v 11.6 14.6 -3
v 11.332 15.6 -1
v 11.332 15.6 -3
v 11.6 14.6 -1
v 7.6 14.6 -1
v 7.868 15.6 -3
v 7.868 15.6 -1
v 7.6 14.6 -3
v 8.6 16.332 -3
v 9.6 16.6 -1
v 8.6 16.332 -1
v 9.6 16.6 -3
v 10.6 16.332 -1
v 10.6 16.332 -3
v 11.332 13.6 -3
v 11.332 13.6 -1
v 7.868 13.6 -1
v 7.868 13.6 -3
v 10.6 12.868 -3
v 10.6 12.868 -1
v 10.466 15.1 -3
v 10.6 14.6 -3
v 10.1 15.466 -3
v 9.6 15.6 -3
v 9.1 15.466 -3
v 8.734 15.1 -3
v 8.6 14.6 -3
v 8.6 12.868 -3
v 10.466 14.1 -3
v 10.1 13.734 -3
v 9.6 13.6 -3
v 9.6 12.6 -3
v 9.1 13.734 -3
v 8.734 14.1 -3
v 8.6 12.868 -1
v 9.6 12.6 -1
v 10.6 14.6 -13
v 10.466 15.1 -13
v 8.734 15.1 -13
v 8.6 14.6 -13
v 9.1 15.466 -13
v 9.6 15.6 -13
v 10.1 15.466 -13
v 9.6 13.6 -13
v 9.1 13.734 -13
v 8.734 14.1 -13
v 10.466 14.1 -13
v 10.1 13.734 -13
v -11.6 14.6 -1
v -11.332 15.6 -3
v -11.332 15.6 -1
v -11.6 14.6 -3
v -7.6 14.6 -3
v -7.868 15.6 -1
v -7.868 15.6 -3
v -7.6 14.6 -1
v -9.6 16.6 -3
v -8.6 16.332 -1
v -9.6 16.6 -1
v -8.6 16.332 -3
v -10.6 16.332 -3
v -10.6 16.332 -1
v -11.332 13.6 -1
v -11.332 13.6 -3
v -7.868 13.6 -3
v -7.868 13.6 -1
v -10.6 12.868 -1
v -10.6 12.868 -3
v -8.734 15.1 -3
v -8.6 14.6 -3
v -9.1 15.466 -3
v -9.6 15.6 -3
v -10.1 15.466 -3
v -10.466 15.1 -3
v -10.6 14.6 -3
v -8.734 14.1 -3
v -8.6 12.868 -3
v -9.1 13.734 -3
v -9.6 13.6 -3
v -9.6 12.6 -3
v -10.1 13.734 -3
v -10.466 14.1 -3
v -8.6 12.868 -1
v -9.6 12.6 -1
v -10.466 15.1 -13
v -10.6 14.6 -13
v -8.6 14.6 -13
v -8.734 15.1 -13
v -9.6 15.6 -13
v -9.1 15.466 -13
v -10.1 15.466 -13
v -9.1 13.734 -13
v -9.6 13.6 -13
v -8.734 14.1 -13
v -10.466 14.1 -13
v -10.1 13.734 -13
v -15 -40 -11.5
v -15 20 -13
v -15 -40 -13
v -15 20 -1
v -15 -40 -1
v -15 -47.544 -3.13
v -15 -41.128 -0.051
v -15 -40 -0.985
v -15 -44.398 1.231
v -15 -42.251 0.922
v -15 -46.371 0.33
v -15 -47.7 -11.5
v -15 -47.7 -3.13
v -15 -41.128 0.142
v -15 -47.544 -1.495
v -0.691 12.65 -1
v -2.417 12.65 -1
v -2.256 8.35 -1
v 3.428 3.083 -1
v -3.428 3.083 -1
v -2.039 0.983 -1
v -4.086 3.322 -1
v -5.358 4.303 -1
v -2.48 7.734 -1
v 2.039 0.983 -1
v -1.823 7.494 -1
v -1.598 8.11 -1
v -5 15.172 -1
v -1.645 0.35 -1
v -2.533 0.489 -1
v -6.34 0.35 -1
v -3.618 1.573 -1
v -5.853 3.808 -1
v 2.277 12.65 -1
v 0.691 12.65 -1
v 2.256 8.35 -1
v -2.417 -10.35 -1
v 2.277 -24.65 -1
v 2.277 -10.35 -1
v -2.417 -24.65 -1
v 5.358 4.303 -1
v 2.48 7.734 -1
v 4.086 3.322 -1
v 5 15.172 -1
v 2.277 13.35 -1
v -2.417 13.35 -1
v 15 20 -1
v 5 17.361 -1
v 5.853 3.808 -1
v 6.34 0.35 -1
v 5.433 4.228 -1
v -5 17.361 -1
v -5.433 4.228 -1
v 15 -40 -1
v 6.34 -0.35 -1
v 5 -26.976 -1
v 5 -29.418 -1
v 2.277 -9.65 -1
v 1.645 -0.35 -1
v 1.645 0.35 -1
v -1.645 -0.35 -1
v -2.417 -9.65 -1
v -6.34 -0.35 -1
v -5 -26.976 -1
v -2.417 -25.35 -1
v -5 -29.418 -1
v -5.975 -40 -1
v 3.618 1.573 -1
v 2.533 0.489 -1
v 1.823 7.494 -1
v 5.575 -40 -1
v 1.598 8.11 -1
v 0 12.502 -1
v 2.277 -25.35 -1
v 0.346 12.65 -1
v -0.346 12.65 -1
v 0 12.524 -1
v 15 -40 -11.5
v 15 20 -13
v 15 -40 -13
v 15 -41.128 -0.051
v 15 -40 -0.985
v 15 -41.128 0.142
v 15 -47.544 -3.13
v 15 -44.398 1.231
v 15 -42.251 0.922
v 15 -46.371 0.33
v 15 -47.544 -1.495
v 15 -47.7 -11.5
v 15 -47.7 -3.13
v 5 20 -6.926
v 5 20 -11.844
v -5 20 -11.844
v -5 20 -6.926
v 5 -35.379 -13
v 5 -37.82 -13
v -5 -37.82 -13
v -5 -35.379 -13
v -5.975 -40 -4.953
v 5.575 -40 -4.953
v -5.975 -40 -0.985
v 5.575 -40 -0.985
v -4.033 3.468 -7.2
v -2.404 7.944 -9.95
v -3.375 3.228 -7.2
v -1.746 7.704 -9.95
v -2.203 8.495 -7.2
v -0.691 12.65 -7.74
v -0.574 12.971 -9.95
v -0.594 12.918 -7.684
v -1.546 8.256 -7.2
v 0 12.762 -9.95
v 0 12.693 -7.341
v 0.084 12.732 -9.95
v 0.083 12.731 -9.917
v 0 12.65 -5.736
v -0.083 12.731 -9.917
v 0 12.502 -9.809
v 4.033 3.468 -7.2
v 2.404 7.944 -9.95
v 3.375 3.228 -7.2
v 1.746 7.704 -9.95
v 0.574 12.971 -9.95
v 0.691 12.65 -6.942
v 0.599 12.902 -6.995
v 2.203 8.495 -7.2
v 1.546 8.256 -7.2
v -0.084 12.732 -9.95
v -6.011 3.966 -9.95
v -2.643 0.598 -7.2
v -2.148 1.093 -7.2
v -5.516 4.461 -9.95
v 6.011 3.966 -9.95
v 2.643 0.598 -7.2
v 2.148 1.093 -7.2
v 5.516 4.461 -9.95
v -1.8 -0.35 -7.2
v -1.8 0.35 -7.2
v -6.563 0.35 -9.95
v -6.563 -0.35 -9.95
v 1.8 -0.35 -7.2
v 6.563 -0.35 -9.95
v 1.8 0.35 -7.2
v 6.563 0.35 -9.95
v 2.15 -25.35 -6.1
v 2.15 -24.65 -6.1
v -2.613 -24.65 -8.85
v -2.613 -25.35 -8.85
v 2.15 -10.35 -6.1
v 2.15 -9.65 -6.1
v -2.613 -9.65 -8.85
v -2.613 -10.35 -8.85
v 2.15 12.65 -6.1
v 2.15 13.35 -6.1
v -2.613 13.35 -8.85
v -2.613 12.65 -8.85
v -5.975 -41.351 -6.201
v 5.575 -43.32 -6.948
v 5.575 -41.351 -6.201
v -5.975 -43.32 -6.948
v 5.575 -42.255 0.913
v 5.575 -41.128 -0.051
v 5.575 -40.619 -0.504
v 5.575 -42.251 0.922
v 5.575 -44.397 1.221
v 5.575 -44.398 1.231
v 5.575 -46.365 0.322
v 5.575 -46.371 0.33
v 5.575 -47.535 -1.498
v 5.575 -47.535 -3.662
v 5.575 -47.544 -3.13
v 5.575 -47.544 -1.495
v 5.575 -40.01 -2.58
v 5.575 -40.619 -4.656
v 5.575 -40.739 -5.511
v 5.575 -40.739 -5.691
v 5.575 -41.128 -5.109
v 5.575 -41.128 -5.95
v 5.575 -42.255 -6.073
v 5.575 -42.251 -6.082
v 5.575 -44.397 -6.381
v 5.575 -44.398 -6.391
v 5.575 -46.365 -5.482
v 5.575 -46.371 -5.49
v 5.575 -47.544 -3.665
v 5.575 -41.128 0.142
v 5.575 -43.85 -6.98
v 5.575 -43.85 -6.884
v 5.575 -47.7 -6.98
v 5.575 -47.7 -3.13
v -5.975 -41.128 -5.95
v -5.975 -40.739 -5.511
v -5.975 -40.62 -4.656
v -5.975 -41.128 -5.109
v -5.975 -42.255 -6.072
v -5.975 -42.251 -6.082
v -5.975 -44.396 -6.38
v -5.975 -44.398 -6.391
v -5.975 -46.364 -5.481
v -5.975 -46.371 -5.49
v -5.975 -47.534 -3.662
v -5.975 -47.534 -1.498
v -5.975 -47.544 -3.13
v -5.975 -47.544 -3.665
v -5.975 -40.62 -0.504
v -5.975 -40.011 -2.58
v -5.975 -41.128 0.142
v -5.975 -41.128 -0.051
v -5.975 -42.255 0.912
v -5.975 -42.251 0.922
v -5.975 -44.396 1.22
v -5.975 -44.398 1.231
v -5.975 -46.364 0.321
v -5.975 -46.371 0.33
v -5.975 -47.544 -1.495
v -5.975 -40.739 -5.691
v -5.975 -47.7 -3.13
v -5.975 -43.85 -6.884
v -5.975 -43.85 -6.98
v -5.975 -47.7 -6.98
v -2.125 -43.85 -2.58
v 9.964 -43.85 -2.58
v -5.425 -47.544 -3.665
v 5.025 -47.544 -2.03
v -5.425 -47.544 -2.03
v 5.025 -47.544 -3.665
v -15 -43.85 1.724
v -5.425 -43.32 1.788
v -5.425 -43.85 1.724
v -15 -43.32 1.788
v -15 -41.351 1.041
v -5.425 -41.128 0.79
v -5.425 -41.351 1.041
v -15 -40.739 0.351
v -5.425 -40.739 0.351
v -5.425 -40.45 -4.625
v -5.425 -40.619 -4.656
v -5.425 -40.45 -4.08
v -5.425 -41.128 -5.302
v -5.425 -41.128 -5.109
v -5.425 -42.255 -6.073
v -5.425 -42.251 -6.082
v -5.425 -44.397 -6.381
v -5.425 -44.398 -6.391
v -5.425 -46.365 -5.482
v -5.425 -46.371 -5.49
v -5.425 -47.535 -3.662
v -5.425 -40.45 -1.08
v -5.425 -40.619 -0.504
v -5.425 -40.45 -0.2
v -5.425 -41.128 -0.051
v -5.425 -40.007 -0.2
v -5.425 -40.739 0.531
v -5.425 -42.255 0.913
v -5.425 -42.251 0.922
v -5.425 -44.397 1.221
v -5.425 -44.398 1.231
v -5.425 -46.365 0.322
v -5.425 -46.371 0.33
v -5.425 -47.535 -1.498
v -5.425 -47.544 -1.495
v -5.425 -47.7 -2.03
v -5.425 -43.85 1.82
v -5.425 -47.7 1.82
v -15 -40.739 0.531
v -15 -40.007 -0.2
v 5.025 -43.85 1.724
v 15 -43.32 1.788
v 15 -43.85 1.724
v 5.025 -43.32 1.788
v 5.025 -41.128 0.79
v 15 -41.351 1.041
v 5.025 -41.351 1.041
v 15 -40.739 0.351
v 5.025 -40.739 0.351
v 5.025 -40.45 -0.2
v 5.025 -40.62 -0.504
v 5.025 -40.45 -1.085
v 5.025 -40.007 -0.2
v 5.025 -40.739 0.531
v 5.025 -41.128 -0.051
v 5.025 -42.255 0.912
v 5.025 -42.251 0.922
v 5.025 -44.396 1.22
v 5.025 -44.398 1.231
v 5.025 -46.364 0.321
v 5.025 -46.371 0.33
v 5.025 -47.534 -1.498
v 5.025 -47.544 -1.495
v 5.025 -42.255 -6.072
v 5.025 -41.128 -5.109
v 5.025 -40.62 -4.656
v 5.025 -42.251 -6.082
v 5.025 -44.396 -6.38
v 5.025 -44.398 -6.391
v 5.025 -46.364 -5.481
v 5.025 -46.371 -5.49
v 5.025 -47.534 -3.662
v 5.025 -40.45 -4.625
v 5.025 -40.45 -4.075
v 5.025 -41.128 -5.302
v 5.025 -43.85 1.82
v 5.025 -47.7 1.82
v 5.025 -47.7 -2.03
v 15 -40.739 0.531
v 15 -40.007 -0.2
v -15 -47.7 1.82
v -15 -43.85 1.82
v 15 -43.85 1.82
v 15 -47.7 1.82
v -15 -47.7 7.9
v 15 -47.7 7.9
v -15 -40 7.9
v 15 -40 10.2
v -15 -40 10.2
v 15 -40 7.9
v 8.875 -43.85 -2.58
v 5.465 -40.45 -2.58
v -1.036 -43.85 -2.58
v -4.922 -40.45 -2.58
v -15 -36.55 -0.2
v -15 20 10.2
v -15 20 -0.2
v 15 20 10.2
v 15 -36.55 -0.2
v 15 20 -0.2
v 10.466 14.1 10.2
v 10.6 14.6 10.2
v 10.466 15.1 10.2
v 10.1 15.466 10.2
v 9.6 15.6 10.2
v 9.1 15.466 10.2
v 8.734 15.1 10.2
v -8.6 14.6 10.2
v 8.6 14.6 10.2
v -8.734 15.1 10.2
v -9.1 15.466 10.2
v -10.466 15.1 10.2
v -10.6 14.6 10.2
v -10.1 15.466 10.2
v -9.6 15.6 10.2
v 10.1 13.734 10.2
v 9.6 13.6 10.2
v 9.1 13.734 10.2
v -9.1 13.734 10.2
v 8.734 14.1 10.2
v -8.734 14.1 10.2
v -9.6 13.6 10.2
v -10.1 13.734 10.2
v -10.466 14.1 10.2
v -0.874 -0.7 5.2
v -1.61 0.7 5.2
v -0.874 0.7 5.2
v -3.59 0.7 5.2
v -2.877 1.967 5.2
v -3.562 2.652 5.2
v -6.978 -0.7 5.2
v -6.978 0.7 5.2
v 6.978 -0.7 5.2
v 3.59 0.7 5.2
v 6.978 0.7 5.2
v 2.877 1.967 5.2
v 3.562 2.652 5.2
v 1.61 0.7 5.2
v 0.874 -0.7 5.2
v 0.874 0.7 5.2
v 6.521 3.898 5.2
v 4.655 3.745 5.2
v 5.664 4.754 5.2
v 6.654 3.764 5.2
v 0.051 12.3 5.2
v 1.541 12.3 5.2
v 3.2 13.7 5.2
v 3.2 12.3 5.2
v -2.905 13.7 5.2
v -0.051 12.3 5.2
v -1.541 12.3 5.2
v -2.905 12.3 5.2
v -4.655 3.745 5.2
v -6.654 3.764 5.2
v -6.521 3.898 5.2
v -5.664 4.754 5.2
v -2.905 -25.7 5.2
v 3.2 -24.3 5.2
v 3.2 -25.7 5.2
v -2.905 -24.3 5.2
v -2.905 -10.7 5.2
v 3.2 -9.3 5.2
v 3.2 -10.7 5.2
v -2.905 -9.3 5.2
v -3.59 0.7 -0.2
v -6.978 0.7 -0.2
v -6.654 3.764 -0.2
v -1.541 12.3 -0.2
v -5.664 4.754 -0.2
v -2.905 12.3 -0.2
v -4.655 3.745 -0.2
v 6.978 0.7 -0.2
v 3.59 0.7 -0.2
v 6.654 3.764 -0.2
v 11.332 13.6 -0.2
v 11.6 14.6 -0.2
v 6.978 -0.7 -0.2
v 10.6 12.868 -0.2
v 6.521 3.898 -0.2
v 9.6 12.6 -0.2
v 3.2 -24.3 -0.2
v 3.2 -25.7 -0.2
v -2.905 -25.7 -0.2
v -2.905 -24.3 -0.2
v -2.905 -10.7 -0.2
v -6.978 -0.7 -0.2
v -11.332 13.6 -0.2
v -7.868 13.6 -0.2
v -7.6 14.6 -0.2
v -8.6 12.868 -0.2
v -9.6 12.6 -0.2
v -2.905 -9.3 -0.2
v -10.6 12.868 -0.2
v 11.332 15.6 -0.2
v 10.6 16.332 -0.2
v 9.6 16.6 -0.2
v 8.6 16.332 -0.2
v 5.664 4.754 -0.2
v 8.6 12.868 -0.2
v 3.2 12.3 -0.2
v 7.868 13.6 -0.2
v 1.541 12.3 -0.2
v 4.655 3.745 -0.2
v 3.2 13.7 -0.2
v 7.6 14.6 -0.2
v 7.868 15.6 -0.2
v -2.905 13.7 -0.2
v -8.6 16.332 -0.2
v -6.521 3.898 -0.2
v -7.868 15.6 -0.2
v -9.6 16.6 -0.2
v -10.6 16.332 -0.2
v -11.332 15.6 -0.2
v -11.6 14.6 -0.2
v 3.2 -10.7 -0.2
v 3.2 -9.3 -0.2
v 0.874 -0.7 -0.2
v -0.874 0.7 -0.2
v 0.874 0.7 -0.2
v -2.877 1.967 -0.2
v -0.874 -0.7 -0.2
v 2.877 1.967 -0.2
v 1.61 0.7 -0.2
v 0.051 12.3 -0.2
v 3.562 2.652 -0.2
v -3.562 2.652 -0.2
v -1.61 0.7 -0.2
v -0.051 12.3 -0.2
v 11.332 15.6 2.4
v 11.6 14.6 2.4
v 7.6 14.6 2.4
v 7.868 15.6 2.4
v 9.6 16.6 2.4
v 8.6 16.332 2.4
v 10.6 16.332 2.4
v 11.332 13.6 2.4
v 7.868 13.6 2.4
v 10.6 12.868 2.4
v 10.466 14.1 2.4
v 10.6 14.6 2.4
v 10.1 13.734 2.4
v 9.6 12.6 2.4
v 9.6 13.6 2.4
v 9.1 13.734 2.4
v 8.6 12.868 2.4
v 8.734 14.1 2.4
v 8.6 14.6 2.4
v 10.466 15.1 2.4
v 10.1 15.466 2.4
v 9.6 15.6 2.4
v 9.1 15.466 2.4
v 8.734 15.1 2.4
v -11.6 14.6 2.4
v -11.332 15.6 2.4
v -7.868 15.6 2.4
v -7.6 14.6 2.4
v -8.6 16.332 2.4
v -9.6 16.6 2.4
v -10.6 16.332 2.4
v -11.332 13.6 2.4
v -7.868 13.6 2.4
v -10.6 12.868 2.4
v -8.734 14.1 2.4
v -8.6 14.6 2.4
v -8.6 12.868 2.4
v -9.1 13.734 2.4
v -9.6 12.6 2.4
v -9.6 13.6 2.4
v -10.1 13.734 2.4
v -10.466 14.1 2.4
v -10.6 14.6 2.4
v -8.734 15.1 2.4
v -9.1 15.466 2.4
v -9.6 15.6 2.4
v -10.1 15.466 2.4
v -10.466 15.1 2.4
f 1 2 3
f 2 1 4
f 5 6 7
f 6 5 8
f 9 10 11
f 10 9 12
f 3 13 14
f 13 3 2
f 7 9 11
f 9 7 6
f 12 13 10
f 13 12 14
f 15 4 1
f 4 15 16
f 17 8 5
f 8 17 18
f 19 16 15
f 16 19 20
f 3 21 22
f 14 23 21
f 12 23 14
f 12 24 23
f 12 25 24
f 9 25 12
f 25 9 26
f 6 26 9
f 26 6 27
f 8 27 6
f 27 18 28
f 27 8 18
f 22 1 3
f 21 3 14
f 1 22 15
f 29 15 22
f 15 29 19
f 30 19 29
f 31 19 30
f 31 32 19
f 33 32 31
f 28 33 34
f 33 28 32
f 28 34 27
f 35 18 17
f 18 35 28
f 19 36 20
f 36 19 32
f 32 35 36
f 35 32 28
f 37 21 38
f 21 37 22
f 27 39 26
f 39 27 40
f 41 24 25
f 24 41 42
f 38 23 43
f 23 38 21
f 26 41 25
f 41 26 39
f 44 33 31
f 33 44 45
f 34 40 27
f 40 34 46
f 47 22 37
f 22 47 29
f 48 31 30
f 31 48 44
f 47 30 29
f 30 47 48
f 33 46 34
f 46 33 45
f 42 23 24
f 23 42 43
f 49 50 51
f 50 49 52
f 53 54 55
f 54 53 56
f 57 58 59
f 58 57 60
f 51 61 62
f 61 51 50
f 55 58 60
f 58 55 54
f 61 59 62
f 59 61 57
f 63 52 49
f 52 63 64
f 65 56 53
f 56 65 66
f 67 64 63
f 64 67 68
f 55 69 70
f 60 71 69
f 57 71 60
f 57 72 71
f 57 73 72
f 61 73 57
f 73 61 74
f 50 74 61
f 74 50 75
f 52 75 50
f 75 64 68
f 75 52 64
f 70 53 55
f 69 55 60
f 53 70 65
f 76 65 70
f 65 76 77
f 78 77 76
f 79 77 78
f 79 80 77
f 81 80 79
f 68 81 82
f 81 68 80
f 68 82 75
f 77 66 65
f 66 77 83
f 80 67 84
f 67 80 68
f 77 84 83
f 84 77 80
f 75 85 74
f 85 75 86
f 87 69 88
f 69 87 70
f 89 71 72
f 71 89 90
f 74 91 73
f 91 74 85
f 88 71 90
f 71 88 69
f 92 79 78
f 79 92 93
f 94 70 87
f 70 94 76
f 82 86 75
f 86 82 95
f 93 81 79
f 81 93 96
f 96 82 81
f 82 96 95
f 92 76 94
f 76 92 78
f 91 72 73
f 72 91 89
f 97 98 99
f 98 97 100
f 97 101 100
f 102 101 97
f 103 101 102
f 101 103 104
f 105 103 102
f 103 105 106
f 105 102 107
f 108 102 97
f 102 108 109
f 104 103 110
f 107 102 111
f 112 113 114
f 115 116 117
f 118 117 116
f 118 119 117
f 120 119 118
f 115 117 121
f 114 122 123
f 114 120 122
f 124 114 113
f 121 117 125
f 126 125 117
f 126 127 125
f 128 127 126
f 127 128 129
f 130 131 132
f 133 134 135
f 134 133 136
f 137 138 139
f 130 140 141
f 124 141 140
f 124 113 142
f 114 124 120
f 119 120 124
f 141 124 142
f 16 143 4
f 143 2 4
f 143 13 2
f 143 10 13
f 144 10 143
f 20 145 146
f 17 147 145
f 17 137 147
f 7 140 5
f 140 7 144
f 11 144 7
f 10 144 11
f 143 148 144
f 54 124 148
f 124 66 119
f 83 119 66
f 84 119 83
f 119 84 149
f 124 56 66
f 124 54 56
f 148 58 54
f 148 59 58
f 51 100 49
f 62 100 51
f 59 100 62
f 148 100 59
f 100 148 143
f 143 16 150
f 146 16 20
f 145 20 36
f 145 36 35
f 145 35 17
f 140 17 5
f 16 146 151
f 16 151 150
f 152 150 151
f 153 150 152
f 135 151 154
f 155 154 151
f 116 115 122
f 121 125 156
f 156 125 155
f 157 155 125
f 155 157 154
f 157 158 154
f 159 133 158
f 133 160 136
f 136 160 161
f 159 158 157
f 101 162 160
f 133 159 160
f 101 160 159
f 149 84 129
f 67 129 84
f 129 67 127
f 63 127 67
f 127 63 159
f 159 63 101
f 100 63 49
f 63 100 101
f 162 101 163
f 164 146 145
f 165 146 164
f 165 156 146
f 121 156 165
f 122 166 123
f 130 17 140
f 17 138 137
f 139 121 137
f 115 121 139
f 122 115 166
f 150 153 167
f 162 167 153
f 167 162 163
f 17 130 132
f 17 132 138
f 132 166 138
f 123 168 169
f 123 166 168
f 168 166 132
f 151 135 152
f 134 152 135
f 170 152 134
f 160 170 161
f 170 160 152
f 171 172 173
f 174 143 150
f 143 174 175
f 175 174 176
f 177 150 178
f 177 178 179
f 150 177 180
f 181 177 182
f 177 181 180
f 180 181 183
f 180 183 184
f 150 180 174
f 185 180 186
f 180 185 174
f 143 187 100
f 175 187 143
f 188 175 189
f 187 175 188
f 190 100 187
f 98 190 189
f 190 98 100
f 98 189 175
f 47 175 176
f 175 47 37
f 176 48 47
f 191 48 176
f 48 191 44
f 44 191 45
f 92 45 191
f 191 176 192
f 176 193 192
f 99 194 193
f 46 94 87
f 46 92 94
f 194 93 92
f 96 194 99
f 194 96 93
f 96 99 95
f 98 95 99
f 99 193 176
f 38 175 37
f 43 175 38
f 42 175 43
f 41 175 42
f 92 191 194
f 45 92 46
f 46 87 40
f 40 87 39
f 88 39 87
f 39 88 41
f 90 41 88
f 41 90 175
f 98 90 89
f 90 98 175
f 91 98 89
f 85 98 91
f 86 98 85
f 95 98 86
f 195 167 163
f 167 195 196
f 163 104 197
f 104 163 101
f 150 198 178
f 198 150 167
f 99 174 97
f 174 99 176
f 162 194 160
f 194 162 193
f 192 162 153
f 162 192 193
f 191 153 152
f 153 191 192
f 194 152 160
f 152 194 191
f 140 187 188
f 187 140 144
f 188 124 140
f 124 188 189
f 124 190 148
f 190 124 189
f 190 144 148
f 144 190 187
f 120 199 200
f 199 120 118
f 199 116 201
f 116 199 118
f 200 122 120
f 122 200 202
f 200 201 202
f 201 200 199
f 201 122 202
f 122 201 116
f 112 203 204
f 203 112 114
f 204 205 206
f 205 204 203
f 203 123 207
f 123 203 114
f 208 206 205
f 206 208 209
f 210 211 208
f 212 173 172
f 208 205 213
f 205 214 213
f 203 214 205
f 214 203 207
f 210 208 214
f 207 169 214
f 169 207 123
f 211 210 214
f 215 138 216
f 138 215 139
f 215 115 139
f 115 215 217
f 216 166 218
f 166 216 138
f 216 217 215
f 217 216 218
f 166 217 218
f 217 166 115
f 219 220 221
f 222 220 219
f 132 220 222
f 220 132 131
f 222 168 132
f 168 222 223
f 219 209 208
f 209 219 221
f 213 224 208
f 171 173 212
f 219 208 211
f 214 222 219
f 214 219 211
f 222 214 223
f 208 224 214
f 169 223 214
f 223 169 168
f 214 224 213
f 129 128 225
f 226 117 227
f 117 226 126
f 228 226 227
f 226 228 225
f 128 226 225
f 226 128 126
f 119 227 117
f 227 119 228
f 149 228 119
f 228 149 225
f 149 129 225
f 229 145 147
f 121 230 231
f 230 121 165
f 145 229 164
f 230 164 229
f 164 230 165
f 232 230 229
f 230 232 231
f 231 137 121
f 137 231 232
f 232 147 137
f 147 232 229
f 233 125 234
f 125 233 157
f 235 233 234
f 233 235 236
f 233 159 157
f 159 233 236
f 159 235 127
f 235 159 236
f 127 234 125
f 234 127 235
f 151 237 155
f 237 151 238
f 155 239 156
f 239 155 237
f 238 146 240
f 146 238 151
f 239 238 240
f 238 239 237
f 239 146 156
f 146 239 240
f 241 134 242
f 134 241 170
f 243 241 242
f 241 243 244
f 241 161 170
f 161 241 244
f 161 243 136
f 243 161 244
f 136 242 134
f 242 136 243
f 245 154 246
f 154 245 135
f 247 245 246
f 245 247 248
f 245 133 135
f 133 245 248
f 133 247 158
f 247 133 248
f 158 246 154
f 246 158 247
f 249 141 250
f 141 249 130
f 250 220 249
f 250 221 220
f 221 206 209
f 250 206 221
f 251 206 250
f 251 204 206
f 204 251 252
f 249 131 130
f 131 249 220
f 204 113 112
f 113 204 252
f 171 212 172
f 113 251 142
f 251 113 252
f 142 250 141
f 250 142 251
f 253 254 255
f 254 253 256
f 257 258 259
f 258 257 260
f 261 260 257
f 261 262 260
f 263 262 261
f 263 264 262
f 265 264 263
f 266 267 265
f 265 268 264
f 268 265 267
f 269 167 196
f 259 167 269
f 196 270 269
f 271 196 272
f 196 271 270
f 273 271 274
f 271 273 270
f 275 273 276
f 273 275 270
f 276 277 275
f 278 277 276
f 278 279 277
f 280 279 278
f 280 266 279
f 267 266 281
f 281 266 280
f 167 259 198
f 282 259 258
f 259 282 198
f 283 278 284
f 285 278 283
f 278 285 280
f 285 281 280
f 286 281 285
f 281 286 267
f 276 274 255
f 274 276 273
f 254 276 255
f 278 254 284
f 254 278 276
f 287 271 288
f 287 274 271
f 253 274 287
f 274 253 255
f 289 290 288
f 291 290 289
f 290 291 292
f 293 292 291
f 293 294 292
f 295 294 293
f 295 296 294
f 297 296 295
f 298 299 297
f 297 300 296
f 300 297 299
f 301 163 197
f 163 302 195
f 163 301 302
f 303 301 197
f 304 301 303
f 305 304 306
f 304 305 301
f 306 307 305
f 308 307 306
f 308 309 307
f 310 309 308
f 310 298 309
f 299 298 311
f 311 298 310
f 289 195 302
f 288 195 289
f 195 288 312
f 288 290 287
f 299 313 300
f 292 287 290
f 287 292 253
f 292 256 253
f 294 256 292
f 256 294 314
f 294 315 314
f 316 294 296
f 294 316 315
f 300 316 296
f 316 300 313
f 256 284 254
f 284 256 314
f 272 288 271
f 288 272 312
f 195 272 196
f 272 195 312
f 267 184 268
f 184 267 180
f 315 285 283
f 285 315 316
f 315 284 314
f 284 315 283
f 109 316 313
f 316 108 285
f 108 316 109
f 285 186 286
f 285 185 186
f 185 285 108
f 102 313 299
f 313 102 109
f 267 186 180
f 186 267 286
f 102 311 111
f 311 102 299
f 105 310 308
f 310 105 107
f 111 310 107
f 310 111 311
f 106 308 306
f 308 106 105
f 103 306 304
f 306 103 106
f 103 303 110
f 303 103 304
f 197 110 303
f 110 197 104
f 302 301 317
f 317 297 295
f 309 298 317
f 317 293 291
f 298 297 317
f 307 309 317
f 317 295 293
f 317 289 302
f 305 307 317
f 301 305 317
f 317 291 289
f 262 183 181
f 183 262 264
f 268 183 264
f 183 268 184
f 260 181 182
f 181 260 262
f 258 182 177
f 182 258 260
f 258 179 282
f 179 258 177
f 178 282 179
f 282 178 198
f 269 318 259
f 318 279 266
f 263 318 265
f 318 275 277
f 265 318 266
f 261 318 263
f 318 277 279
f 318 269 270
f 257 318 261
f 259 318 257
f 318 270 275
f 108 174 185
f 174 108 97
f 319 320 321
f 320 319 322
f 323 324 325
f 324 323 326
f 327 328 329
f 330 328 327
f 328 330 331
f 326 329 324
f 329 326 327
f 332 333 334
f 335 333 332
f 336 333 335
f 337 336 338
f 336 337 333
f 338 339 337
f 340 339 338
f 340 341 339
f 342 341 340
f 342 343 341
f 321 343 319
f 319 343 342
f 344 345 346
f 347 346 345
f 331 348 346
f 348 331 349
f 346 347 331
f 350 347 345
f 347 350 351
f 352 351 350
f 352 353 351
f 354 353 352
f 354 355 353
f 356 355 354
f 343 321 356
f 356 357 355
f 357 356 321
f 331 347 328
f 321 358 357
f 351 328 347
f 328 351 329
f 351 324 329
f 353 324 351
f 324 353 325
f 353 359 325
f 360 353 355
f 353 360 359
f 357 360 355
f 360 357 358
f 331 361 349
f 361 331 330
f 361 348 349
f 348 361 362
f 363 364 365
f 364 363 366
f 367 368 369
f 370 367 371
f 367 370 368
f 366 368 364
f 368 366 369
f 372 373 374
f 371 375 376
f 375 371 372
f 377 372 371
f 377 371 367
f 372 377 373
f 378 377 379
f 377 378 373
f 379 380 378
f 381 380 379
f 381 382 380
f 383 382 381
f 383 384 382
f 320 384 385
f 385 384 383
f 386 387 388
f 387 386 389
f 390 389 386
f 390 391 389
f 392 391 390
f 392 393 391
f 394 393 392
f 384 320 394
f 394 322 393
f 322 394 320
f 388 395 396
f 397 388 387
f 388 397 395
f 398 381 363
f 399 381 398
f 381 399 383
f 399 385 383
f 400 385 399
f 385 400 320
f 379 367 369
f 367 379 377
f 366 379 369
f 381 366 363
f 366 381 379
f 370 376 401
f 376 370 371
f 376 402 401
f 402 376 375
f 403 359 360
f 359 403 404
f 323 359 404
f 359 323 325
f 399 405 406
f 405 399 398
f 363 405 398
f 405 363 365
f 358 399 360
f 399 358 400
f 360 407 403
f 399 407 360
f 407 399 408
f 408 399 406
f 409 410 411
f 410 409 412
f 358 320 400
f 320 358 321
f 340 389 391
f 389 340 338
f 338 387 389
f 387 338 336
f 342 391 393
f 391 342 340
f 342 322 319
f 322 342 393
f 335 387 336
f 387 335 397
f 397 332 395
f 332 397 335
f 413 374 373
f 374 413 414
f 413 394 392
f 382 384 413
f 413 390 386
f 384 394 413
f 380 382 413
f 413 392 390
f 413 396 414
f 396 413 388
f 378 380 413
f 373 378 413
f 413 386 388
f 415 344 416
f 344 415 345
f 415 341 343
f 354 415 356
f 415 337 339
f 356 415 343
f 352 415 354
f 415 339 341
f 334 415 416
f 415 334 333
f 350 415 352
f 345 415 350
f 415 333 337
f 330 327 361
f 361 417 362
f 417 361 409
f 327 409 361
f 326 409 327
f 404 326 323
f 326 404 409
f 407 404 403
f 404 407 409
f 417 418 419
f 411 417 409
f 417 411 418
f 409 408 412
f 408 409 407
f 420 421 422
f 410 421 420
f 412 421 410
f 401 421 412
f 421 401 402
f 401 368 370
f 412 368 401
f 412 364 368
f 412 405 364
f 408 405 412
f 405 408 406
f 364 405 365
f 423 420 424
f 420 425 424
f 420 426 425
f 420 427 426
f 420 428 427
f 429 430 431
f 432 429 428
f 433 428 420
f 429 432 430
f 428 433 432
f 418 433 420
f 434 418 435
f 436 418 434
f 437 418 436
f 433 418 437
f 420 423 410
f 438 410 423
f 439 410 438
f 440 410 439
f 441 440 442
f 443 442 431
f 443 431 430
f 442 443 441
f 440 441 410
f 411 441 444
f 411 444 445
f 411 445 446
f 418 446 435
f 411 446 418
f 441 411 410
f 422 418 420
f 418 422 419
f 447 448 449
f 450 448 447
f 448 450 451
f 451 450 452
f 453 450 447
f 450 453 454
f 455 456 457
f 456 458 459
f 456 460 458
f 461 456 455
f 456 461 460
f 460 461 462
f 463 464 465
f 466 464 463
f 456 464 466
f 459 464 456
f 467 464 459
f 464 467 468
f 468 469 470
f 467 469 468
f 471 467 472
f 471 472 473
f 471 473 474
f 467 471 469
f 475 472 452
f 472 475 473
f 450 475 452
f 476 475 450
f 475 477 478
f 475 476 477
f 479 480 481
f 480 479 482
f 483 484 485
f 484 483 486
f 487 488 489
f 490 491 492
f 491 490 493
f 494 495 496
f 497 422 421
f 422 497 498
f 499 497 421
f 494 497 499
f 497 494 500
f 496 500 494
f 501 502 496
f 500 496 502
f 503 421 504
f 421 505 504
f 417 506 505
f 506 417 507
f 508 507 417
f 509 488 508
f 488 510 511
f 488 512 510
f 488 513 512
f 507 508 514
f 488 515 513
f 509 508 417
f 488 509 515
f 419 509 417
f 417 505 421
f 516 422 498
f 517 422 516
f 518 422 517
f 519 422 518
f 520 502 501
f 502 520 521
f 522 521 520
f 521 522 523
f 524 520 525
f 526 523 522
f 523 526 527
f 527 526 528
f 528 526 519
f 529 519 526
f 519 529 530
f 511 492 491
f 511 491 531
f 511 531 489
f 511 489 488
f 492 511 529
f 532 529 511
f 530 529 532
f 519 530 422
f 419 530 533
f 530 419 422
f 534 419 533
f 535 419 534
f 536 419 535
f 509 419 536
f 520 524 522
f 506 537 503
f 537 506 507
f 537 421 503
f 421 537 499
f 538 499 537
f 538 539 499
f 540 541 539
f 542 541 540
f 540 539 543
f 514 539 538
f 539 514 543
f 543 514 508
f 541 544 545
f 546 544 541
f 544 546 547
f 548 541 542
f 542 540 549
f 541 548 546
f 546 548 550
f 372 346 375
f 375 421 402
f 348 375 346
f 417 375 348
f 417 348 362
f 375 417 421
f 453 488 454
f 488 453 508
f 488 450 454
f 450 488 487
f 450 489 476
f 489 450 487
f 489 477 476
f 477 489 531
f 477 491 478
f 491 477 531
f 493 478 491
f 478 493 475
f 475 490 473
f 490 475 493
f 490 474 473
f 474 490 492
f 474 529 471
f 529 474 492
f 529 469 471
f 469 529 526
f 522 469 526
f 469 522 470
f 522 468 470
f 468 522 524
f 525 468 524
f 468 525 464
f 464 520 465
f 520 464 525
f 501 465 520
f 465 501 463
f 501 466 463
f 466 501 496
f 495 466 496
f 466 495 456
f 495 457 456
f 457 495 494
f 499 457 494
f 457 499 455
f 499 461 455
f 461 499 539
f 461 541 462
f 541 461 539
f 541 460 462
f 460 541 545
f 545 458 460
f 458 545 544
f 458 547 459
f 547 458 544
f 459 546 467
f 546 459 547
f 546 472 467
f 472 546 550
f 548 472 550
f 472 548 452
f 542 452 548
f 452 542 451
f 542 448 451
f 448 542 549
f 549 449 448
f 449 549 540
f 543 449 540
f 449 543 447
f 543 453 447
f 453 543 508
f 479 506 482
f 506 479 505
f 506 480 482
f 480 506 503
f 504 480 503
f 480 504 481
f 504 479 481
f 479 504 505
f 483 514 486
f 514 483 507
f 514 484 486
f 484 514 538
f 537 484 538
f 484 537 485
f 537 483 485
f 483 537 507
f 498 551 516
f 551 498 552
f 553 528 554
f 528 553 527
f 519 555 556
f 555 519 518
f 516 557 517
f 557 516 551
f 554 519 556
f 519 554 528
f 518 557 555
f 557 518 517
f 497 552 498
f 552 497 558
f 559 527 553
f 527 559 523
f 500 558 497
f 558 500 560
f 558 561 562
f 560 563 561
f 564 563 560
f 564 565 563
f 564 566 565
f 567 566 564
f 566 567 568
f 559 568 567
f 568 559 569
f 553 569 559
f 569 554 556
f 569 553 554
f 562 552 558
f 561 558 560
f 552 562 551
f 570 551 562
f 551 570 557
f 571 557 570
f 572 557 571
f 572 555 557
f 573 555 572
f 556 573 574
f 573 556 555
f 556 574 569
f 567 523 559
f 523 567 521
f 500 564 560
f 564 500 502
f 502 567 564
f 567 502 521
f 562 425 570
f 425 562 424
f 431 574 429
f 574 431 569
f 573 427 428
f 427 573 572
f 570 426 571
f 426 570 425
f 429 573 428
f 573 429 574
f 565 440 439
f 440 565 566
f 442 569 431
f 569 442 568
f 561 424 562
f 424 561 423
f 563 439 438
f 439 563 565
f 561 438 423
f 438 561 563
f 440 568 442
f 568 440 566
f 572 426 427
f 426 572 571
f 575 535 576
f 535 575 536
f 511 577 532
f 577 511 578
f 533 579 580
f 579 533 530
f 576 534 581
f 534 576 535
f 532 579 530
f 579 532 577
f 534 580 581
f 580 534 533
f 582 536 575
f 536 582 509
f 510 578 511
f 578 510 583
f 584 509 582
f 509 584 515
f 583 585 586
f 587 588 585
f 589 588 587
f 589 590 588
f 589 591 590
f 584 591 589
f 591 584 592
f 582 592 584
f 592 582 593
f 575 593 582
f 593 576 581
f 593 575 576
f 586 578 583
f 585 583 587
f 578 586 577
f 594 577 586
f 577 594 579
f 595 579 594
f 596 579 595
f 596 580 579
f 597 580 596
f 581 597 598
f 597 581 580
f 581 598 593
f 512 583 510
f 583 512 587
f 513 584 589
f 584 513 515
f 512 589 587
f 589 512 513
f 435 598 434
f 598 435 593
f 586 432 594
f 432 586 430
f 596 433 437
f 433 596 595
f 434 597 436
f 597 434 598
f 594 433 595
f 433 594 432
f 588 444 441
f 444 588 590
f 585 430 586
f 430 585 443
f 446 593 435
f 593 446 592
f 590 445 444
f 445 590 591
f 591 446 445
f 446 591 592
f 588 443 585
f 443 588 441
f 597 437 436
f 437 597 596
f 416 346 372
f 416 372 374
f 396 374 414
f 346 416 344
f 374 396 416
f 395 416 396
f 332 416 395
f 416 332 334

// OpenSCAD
// file: hinge.scad
// A library to create print-in-place horizontal hinges.
//
// Copyright (c) 2020 Rodrigo Chandia (rodrigo.chandia@gmail.com)
// All rights reserved.
//
// This program is distributed in the hope that it will be useful,
// but WITHOUT ANY WARRANTY; without even the implied warranty of
// MERCHANTABILITY or FITNESS FOR A PARTICULAR PURPOSE.
//
// The contents of this file are DUAL-LICENSED.  You may modify and/or
// redistribute this software according to the terms of one of the
// following two licenses (at your option):
//
// License 1: Attribution-ShareAlike 4.0 International (CC BY-SA 4.0)
//            https://creativecommons.org/licenses/by-sa/4.0/
//
// License 2: GNU General Public License (GPLv3)
//            https://www.gnu.org/licenses/gpl-3.0.en.html
//
// You should have received a copy of the GNU General Public License
// along with this program. https://www.gnu.org/licenses/
//

module bottomWedge(r, d, rodH, tolerance, other) {
  wedgeH = (r + tolerance) * sin(45);
  wedgeBottom = max(r + tolerance, d);
  wedgeFlip = other ? 1 : -1;
  linear_extrude(height = rodH)
  polygon(points=[
    [wedgeH,wedgeFlip*-r],
    [wedgeH,wedgeFlip*wedgeH],
    [wedgeBottom,wedgeFlip*(wedgeH - (wedgeBottom - wedgeH))],
    [wedgeBottom,wedgeFlip*-r]
  ]);
}

module hingeRodNegative(r, d, h, tolerance, tip, other) {
  difference() {
    translate([0,0,d])
    rotate([0,90,0]) {
      translate([0, 0, -tolerance/2]) {
        rodH = h  + (tip ? tolerance/2 : 0) + tolerance/2;
        cylinder(r = r + tolerance, h = rodH);
        bottomWedge(r, d, rodH, tolerance, other);
      }
      if (tip) {
        translate([0,0,h])
        cylinder(r = r, h = tolerance + 0.01);
        translate([0,0,h + tolerance])
        cylinder(r1 = r, r2 = 0, h = r + tolerance);
      } else {
        translate([0,0,h])
        cylinder(r = r + tolerance, h = tolerance / 2);
      }
    }
    translate([
      -tolerance/2 - 0.01,
      other ? -r - tolerance : 0,
      -0.01])
    cube([h + tolerance + + 0.02 + (tip ? r + tolerance * 1.5 : 0), r + tolerance, d + r + tolerance + 0.02]);
  }
}

module hingeRod(r, d, h, tip, dip, tolerance, negative, other) {
  if (negative) {
    hingeRodNegative(r, d, h, tolerance, tip, other);
  } else {
    toleranceTip = tip ? tolerance/2 : tolerance/2;
    toleranceDip = dip ? tolerance/2 : tolerance/2;
    translate([0,0,d])
    rotate([0,90,0])
    difference() {
      union() {
        rodH = h - toleranceTip - toleranceDip;
        translate([0,0,toleranceDip]) {
          cylinder(r = r, h = rodH);
          bottomWedge(r, d, rodH, 0, !other);
        }
        if (tip) {
          translate([0,0,h - toleranceTip - 0.01])
          cylinder(r1 = r, r2 = 0, h = r + 0.01);
        }
      }
      if (dip) {
        translate([0,0,toleranceDip-0.01])
        cylinder(r1 = r, r2 = 0, h = r + tolerance);
      }
    }
  }
}

function xor(a, b) = (a && !b) || (b && !a);

module hingeCorner(r, cornerHeight, hingeLength, pieces, other, negative, tolerance, bolted = true) {
  startAtFirst = xor(other, negative);
  for (i = [1:pieces]) {
    if (i % 2 == (startAtFirst ? 0 : 1)) {
      translate([hingeLength / pieces * (i - 1),0,0])
      hingeRod(r, cornerHeight, hingeLength / pieces, ((i != pieces || cornerHeight > (hingeLength / pieces))&& bolted) , i != 1 && bolted, tolerance, negative, other);
    }   
  }
}

module applyHingeCorner(position = [0,0,0], rotation = [0,0,0], r = 3, cornerHeight = 5, hingeLength = 15, pieces = 3, tolerance = 0.3) {
  translate(position)
  for (i = [0:1]) {
    difference() {
      translate(-position)
      children(i);
      rotate(rotation)
      hingeCorner(r, cornerHeight, hingeLength, pieces, i == 0, true, tolerance);
    }
    rotate(rotation)
    hingeCorner(r, cornerHeight, hingeLength, pieces, i == 0, false, tolerance);
  }
  if ($children > 2) {
    children([2:$children-1]);
  }
}

module applyHinges(positions, rotations, r, cornerHeight, hingeLength, pieces, tolerance) {
  difference() {
    children();
    for (j = [0 : 1 : len(positions) - 1]) {
      translate(positions[j])
      rotate([0,0, rotations[j]])
      for (b = [0, 1]) {
        hingeCorner(r, cornerHeight, hingeLength, pieces, b == 0, true, tolerance);
      }
    }
  }
  for (j = [0 : 1 : len(positions) - 1]) {
    translate(positions[j])
    rotate([0,0, rotations[j]])
    for (b = [0, 1]) {
      hingeCorner(r, cornerHeight, hingeLength, pieces, b == 0, false, tolerance);
    }
  }
}

module negativeExtraAngle(position, rotation, cornerHeight, centerHeight, hingeLength, pieces, tolerance, other, angle) {
  translate(position)
  rotate(rotation) {
    startAtFirst = !other;
    l = (cornerHeight + tolerance - centerHeight) / tan(90-angle / 2);
    for (i = [1 : pieces]) {
      if (i % 2 == (startAtFirst ? 0 : 1)) {
        dip = i != 1;
        w = hingeLength / pieces + (dip ? 1 : 0.5) * tolerance;
        positionX = (i - 1) * hingeLength / pieces + (dip ? -tolerance / 2 : 0);
        difference() {
          translate([ positionX, 0, centerHeight])
          rotate([other ? -angle : angle, 0, 0])
          translate([0, other ? -l : 0, -centerHeight])
          cube([w, l, cornerHeight + tolerance]);
          
          translate([positionX - 0.01, other ? -cornerHeight + 0.01 : -0.01, 0])
          cube([w + 0.02, cornerHeight, 2 * cornerHeight]);
          
          diffY = norm([l, cornerHeight + tolerance]);
          translate([positionX - 0.01, other? -0.01 : -diffY - 2 * tolerance + 0.01, cornerHeight + 0.01])
          cube([w + 0.02, diffY + 2 * tolerance, diffY]);
        }
      }    
    }
  }
}

module applyExtraAngle(positions, rotations, cornerHeight, centerHeight, hingeLength, pieces, tolerance, angle) {
  difference() {
    children();
    for (j = [0 : 1 : len(positions) - 1]) {
      negativeExtraAngle(positions[j], rotations[j], cornerHeight, centerHeight, hingeLength, pieces, tolerance, false, angle);
      negativeExtraAngle(positions[j], rotations[j], cornerHeight, centerHeight, hingeLength, pieces, tolerance, true, angle);
    }
  }
}


left_part(boltless = false, boltradius = 1.5);
right_part(boltless = false, boltradius = 1.5);


module bolt(boltradius) {
    translate([0,0,7/2]) rotate([0,90,0]) cylinder(70,boltradius,boltradius,$fn = 12);
} 

module left_part(len=20, tolerance = 0.7, boltless = true, boltradius = 1.5) {
    difference() {
        union() {
            difference() {
                translate([0,0.5,0]) cube([60,len,7]);
                hingeCorner(7/2, 7/2, 60, 6, true, true, tolerance, boltless);
                negativeExtraAngle([0,0,0], [0,0,0], 7, 7/2, 60, 6, tolerance, true, 90);
            }
            hingeCorner(7/2, 7/2, 60, 6, true, false, tolerance, boltless);
        }
      if (boltless==false) bolt(boltradius);
    }
 }

module right_part(len=20, tolerance = 0.7, boltless = true, boltradius) {
    difference() {
        union() {
            difference() {
                translate([0,(-0.5)-len,0]) cube([60,len,7]);
                hingeCorner(7/2, 7/2, 60, 6, false, true, tolerance);
                negativeExtraAngle([0,0,0], [0,0,0], 7, 7/2, 60, 6, tolerance, false, 90);
            }
            hingeCorner(7/2, 7/2, 60, 6, false, false, tolerance, boltless);
        }
      if (boltless==false) bolt(boltradius);
    }
 }
// main file
use<hinge.scad>

/* [Tape vars] */ 
// Tape src:  10 mm Wide Velcro Tape on Both Sides (https://www.amazon.de/-/en/dp/B0C3CJNB5P)
tape_widthX = 10;
tape_lengthY = 50;
tape_thinkness = 2;

/* [Tip vars] */
tip_tape_lengthY = 34;
tip_notchCutout_pos_x = 1;
tip_notchCutout_pos_y = 0;
tip_notchCutout_pos_z = -2.5;
tip_notchShape_base = 5;
tip_notchShape_height = 5; 
tip_notchShape_thinkness = 5; 

tip_taperCutout_pos_x = 9;
tip_taperCutout_pos_y = 11;
tip_taperCutout_pos_z = 0;
tip_taperShape_base = 15;
tip_taperShape_height = 18;
tip_taperShape_thinkness = 5; 

/* [Lid vars] */
lid_blade_cutiout = 1.4; // expansion offset for receving blades
lid_bladeSeg_length = 8; // expansion offset for receving blades

/* [Blade vars] */ 
// Blade src: 11-300 Stanley
blade_heightZ = 9;
blade_thicknessX = 0.7;
bladeSeg_lengthY = 5.5;
Slot_blade_dist = -25;

/* [Hinge vars] */
hinge_tolerance = 0.5;
hinge_offset_x = -16.7;
hinge_offset_z = 1.58;
hinge_scale = 1.1;
hinge_boltradius = 1.5;
hinge_boltless = true;

/* [Handle rope holes] */
rope_hole_x = 9.6;
rope_hole_y = 14.6;
rope_hole_innerRad = 1;
rope_hole_outerRad = 2;

/* [Visibility / Helpers] */
show = "all"; // ["body", "lid", "all"]
showblades = false;
tape_guide = false; // show example of cut tape


main();

module main() {
    if ((show=="body")||(show=="all")) body(["body", "hinged", "stdcutouts"]); // args opts: body/lid, hinged/hinged, thickcutouts/[cutouts]
    if ((show=="lid")||(show=="all")) translate([0,0,-0.6]) lid();
    if (tape_guide) guide();
}

module lid() {
    difference() {
        union() {
            color("grey") translate([0,-10,8.3]) cube([30,60,5], center = true); // caps the extrusion below
            translate([0,0,0.4]) linear_extrude(10) projection(cut = true) translate([0,0,1]) body(["lid", "unhinged", "thickcutouts"]); // creates a slice of housing top and extrudes
            hinges("top");
        }
       translate([0,-38.5,-2.6]) cube([30,3.9,6], center = true); 
       mirror([0,0,1]) handleropeholes();
       mirror([0,0,1]) mirror([1,0,0]) handleropeholes(); // mirrors holes
    }
    if (showblades) color("purple") blades(); 
}

module body(args) {
    difference() {
        color("yellow") housing(args);
        if (args[2]=="thickcutouts")
                color("purple") blades(lid_blade_cutiout,lid_bladeSeg_length); // makes thicker cutouts to receieve blade tips when generating lid
        else
            color("purple") blades(); // creates holes for blades in actual body  
    }
    if (args[1]=="hinged") hinges("bottom");
    if (showblades) color("purple") blades(); // uncomment in "body" view to see actual blades
}

module hinges(arg) {
    intersection() {
        color("pink") translate([0,-40,-1.5]) cube([30,22,20], center = true); 
        if (arg=="top") translate([hinge_offset_x,-40,-0.4-hinge_offset_z]) rotate([90,0,0]) scale(hinge_scale) left_part(tolerance = hinge_tolerance,boltless = hinge_boltless, boltradius = hinge_boltradius);
        if (arg=="bottom") translate([hinge_offset_x,-40,-1-hinge_offset_z]) rotate([90,0,0]) scale(hinge_scale) right_part(tolerance = hinge_tolerance,boltless = hinge_boltless, boltradius = hinge_boltradius);
    }
}

module guide() { // example of cut tape for reference
    difference() {
        color("blue") example_tape();
        color("purple") blades();
        translate([0,0-tape_lengthY+10,0.7]) cube([12,1,2], center=true);
    }
    
}

module handleropeholes(){  // holes for rope handles to help pull apart the heads
        translate([rope_hole_x,rope_hole_y,-1.5]) cylinder(3,rope_hole_outerRad,rope_hole_outerRad, center = true, $fn = 12);
        translate([rope_hole_x,rope_hole_y,-15]) cylinder(30,rope_hole_innerRad,rope_hole_innerRad, center = true, $fn = 12);
}

module housing(args) {
   difference() {
       translate([0,-10,-6-(tape_thinkness/2)]) cube([30,60,12], center = true); 
       if (args[0]=="body") translate([0,-38,-15]) rotate([55,0,0]) tape(25); 
       if (args[0]=="body") translate([0,+22.5,-15]) rotate([114,0,0]) tape(25);
       if (args[0]=="body") handleropeholes();
       if (args[0]=="body")mirror([1,0,0]) handleropeholes(); 
   }
}



// ******* Example Tape Tip *********

module blades(thickness = blade_thicknessX, length = bladeSeg_lengthY ) {
    translate([0,0,-2.7]) {
        taper_blade(thickness, length);
        mirror([1,0,0]) taper_blade(thickness, length);
        notch_blade1(thickness, length);
        mirror([1,0,0]) notch_blade1(thickness, length);
        notch_blade2(thickness, length);
        mirror([1,0,0]) notch_blade2(thickness, length);
        translate([0,0,0]) slit_blade(90, thickness, length);
        translate([0,15,0]) slit_blade(90, thickness, length);
        //translate([-2,29.1,0]) slit_blade(0);
        translate([+0.0,38,0]) slit_blade(90, thickness, length);
    }
}

module slit_blade(zRot=90, thickness, length) { 
    translate([2,Slot_blade_dist,1.1]) rotate([0,0,zRot]) bladeSection(2,1,thickness, length);
}

module taper_blade(thickness, length) {
    translate([-(4.5+thickness/2),+0.2,0]) rotate([0,0,-20]) bladeSection(5.5,2,thickness, length);
}

module notch_blade2(thickness,length) {
    translate([-(1.6+thickness/2),0,0]) rotate([0,0,90]) bladeSection(2,1,thickness, length);
}

module notch_blade1(thickness,length) {
    translate([-(3.0+thickness/2),1.8,0]) rotate([0,0,45]) bladeSection(0.8,1,thickness, length);
}

module bladeSection(shift, max, thickness, length,center=true) { // creates the blade of given section length
    centroid = center ? [-thickness/2,-blade_heightZ/2,-blade_heightZ/2] : [0, 0, 0];
    translate(centroid) translate([0,0+shift,0]) {  
        translate([0,4.7/2,0]) blade(thickness,length);
        for (i = [1:1:max-1]) {
            translate([0,(5.6/2)+4.9*i,0]) blade(thickness, length);
        }
    }
}

module blade(thickness, length) {
    rotate([60,0,0]) rotate([0,90,00]) linear_extrude(height=thickness) polygon(points=[[0,0],[-length,blade_heightZ],[0,blade_heightZ],[length,0]], paths=[[0,1,2,3]]);
}

// ******* Example Tape Tip *********

module example_tape() {
    tip();
    translate ([0,-50.5,0]) tape(tape_lengthY);
}   

module tip() {
    difference() {
       translate([0,-0.5,0])tape(18);
       tip_tape_cutouts();
    }
}

module tip_tape_cutouts() {
    tip_notch();
    mirror([1,0,0]) tip_notch();
    tip_taper();
    mirror([1,0,0]) tip_taper();
}

module tip_notch() {
    translate([tip_notchCutout_pos_x,tip_notchCutout_pos_y,tip_notchCutout_pos_z]) rotate([0,0,-45]) tip_notchShape();
}

module tip_taper() {
    translate([tip_taperCutout_pos_x,tip_taperCutout_pos_y,tip_taperCutout_pos_z]) rotate([0,0,17]) tip_taperShape();
}

module tip_notchShape() {
    triangle(tip_notchShape_base,tip_notchShape_height,tip_notchShape_thinkness);
}

module tip_taperShape() {
    cube([tip_taperShape_base,tip_taperShape_height,tip_taperShape_thinkness], center=true);
}

module triangle(o_len, a_len, depth, center=false) {
    centroid = center ? [-a_len/3, -o_len/3, -depth/2] : [0, 0, 0];
    translate(centroid) linear_extrude(height=depth) {
        polygon(points=[[0,0],[a_len,0],[0,o_len]], paths=[[0,1,2]]);
    }
}

module tape(length) {
    translate([0,length/2,0])cube([tape_widthX,length,tape_thinkness], center=true);
}
